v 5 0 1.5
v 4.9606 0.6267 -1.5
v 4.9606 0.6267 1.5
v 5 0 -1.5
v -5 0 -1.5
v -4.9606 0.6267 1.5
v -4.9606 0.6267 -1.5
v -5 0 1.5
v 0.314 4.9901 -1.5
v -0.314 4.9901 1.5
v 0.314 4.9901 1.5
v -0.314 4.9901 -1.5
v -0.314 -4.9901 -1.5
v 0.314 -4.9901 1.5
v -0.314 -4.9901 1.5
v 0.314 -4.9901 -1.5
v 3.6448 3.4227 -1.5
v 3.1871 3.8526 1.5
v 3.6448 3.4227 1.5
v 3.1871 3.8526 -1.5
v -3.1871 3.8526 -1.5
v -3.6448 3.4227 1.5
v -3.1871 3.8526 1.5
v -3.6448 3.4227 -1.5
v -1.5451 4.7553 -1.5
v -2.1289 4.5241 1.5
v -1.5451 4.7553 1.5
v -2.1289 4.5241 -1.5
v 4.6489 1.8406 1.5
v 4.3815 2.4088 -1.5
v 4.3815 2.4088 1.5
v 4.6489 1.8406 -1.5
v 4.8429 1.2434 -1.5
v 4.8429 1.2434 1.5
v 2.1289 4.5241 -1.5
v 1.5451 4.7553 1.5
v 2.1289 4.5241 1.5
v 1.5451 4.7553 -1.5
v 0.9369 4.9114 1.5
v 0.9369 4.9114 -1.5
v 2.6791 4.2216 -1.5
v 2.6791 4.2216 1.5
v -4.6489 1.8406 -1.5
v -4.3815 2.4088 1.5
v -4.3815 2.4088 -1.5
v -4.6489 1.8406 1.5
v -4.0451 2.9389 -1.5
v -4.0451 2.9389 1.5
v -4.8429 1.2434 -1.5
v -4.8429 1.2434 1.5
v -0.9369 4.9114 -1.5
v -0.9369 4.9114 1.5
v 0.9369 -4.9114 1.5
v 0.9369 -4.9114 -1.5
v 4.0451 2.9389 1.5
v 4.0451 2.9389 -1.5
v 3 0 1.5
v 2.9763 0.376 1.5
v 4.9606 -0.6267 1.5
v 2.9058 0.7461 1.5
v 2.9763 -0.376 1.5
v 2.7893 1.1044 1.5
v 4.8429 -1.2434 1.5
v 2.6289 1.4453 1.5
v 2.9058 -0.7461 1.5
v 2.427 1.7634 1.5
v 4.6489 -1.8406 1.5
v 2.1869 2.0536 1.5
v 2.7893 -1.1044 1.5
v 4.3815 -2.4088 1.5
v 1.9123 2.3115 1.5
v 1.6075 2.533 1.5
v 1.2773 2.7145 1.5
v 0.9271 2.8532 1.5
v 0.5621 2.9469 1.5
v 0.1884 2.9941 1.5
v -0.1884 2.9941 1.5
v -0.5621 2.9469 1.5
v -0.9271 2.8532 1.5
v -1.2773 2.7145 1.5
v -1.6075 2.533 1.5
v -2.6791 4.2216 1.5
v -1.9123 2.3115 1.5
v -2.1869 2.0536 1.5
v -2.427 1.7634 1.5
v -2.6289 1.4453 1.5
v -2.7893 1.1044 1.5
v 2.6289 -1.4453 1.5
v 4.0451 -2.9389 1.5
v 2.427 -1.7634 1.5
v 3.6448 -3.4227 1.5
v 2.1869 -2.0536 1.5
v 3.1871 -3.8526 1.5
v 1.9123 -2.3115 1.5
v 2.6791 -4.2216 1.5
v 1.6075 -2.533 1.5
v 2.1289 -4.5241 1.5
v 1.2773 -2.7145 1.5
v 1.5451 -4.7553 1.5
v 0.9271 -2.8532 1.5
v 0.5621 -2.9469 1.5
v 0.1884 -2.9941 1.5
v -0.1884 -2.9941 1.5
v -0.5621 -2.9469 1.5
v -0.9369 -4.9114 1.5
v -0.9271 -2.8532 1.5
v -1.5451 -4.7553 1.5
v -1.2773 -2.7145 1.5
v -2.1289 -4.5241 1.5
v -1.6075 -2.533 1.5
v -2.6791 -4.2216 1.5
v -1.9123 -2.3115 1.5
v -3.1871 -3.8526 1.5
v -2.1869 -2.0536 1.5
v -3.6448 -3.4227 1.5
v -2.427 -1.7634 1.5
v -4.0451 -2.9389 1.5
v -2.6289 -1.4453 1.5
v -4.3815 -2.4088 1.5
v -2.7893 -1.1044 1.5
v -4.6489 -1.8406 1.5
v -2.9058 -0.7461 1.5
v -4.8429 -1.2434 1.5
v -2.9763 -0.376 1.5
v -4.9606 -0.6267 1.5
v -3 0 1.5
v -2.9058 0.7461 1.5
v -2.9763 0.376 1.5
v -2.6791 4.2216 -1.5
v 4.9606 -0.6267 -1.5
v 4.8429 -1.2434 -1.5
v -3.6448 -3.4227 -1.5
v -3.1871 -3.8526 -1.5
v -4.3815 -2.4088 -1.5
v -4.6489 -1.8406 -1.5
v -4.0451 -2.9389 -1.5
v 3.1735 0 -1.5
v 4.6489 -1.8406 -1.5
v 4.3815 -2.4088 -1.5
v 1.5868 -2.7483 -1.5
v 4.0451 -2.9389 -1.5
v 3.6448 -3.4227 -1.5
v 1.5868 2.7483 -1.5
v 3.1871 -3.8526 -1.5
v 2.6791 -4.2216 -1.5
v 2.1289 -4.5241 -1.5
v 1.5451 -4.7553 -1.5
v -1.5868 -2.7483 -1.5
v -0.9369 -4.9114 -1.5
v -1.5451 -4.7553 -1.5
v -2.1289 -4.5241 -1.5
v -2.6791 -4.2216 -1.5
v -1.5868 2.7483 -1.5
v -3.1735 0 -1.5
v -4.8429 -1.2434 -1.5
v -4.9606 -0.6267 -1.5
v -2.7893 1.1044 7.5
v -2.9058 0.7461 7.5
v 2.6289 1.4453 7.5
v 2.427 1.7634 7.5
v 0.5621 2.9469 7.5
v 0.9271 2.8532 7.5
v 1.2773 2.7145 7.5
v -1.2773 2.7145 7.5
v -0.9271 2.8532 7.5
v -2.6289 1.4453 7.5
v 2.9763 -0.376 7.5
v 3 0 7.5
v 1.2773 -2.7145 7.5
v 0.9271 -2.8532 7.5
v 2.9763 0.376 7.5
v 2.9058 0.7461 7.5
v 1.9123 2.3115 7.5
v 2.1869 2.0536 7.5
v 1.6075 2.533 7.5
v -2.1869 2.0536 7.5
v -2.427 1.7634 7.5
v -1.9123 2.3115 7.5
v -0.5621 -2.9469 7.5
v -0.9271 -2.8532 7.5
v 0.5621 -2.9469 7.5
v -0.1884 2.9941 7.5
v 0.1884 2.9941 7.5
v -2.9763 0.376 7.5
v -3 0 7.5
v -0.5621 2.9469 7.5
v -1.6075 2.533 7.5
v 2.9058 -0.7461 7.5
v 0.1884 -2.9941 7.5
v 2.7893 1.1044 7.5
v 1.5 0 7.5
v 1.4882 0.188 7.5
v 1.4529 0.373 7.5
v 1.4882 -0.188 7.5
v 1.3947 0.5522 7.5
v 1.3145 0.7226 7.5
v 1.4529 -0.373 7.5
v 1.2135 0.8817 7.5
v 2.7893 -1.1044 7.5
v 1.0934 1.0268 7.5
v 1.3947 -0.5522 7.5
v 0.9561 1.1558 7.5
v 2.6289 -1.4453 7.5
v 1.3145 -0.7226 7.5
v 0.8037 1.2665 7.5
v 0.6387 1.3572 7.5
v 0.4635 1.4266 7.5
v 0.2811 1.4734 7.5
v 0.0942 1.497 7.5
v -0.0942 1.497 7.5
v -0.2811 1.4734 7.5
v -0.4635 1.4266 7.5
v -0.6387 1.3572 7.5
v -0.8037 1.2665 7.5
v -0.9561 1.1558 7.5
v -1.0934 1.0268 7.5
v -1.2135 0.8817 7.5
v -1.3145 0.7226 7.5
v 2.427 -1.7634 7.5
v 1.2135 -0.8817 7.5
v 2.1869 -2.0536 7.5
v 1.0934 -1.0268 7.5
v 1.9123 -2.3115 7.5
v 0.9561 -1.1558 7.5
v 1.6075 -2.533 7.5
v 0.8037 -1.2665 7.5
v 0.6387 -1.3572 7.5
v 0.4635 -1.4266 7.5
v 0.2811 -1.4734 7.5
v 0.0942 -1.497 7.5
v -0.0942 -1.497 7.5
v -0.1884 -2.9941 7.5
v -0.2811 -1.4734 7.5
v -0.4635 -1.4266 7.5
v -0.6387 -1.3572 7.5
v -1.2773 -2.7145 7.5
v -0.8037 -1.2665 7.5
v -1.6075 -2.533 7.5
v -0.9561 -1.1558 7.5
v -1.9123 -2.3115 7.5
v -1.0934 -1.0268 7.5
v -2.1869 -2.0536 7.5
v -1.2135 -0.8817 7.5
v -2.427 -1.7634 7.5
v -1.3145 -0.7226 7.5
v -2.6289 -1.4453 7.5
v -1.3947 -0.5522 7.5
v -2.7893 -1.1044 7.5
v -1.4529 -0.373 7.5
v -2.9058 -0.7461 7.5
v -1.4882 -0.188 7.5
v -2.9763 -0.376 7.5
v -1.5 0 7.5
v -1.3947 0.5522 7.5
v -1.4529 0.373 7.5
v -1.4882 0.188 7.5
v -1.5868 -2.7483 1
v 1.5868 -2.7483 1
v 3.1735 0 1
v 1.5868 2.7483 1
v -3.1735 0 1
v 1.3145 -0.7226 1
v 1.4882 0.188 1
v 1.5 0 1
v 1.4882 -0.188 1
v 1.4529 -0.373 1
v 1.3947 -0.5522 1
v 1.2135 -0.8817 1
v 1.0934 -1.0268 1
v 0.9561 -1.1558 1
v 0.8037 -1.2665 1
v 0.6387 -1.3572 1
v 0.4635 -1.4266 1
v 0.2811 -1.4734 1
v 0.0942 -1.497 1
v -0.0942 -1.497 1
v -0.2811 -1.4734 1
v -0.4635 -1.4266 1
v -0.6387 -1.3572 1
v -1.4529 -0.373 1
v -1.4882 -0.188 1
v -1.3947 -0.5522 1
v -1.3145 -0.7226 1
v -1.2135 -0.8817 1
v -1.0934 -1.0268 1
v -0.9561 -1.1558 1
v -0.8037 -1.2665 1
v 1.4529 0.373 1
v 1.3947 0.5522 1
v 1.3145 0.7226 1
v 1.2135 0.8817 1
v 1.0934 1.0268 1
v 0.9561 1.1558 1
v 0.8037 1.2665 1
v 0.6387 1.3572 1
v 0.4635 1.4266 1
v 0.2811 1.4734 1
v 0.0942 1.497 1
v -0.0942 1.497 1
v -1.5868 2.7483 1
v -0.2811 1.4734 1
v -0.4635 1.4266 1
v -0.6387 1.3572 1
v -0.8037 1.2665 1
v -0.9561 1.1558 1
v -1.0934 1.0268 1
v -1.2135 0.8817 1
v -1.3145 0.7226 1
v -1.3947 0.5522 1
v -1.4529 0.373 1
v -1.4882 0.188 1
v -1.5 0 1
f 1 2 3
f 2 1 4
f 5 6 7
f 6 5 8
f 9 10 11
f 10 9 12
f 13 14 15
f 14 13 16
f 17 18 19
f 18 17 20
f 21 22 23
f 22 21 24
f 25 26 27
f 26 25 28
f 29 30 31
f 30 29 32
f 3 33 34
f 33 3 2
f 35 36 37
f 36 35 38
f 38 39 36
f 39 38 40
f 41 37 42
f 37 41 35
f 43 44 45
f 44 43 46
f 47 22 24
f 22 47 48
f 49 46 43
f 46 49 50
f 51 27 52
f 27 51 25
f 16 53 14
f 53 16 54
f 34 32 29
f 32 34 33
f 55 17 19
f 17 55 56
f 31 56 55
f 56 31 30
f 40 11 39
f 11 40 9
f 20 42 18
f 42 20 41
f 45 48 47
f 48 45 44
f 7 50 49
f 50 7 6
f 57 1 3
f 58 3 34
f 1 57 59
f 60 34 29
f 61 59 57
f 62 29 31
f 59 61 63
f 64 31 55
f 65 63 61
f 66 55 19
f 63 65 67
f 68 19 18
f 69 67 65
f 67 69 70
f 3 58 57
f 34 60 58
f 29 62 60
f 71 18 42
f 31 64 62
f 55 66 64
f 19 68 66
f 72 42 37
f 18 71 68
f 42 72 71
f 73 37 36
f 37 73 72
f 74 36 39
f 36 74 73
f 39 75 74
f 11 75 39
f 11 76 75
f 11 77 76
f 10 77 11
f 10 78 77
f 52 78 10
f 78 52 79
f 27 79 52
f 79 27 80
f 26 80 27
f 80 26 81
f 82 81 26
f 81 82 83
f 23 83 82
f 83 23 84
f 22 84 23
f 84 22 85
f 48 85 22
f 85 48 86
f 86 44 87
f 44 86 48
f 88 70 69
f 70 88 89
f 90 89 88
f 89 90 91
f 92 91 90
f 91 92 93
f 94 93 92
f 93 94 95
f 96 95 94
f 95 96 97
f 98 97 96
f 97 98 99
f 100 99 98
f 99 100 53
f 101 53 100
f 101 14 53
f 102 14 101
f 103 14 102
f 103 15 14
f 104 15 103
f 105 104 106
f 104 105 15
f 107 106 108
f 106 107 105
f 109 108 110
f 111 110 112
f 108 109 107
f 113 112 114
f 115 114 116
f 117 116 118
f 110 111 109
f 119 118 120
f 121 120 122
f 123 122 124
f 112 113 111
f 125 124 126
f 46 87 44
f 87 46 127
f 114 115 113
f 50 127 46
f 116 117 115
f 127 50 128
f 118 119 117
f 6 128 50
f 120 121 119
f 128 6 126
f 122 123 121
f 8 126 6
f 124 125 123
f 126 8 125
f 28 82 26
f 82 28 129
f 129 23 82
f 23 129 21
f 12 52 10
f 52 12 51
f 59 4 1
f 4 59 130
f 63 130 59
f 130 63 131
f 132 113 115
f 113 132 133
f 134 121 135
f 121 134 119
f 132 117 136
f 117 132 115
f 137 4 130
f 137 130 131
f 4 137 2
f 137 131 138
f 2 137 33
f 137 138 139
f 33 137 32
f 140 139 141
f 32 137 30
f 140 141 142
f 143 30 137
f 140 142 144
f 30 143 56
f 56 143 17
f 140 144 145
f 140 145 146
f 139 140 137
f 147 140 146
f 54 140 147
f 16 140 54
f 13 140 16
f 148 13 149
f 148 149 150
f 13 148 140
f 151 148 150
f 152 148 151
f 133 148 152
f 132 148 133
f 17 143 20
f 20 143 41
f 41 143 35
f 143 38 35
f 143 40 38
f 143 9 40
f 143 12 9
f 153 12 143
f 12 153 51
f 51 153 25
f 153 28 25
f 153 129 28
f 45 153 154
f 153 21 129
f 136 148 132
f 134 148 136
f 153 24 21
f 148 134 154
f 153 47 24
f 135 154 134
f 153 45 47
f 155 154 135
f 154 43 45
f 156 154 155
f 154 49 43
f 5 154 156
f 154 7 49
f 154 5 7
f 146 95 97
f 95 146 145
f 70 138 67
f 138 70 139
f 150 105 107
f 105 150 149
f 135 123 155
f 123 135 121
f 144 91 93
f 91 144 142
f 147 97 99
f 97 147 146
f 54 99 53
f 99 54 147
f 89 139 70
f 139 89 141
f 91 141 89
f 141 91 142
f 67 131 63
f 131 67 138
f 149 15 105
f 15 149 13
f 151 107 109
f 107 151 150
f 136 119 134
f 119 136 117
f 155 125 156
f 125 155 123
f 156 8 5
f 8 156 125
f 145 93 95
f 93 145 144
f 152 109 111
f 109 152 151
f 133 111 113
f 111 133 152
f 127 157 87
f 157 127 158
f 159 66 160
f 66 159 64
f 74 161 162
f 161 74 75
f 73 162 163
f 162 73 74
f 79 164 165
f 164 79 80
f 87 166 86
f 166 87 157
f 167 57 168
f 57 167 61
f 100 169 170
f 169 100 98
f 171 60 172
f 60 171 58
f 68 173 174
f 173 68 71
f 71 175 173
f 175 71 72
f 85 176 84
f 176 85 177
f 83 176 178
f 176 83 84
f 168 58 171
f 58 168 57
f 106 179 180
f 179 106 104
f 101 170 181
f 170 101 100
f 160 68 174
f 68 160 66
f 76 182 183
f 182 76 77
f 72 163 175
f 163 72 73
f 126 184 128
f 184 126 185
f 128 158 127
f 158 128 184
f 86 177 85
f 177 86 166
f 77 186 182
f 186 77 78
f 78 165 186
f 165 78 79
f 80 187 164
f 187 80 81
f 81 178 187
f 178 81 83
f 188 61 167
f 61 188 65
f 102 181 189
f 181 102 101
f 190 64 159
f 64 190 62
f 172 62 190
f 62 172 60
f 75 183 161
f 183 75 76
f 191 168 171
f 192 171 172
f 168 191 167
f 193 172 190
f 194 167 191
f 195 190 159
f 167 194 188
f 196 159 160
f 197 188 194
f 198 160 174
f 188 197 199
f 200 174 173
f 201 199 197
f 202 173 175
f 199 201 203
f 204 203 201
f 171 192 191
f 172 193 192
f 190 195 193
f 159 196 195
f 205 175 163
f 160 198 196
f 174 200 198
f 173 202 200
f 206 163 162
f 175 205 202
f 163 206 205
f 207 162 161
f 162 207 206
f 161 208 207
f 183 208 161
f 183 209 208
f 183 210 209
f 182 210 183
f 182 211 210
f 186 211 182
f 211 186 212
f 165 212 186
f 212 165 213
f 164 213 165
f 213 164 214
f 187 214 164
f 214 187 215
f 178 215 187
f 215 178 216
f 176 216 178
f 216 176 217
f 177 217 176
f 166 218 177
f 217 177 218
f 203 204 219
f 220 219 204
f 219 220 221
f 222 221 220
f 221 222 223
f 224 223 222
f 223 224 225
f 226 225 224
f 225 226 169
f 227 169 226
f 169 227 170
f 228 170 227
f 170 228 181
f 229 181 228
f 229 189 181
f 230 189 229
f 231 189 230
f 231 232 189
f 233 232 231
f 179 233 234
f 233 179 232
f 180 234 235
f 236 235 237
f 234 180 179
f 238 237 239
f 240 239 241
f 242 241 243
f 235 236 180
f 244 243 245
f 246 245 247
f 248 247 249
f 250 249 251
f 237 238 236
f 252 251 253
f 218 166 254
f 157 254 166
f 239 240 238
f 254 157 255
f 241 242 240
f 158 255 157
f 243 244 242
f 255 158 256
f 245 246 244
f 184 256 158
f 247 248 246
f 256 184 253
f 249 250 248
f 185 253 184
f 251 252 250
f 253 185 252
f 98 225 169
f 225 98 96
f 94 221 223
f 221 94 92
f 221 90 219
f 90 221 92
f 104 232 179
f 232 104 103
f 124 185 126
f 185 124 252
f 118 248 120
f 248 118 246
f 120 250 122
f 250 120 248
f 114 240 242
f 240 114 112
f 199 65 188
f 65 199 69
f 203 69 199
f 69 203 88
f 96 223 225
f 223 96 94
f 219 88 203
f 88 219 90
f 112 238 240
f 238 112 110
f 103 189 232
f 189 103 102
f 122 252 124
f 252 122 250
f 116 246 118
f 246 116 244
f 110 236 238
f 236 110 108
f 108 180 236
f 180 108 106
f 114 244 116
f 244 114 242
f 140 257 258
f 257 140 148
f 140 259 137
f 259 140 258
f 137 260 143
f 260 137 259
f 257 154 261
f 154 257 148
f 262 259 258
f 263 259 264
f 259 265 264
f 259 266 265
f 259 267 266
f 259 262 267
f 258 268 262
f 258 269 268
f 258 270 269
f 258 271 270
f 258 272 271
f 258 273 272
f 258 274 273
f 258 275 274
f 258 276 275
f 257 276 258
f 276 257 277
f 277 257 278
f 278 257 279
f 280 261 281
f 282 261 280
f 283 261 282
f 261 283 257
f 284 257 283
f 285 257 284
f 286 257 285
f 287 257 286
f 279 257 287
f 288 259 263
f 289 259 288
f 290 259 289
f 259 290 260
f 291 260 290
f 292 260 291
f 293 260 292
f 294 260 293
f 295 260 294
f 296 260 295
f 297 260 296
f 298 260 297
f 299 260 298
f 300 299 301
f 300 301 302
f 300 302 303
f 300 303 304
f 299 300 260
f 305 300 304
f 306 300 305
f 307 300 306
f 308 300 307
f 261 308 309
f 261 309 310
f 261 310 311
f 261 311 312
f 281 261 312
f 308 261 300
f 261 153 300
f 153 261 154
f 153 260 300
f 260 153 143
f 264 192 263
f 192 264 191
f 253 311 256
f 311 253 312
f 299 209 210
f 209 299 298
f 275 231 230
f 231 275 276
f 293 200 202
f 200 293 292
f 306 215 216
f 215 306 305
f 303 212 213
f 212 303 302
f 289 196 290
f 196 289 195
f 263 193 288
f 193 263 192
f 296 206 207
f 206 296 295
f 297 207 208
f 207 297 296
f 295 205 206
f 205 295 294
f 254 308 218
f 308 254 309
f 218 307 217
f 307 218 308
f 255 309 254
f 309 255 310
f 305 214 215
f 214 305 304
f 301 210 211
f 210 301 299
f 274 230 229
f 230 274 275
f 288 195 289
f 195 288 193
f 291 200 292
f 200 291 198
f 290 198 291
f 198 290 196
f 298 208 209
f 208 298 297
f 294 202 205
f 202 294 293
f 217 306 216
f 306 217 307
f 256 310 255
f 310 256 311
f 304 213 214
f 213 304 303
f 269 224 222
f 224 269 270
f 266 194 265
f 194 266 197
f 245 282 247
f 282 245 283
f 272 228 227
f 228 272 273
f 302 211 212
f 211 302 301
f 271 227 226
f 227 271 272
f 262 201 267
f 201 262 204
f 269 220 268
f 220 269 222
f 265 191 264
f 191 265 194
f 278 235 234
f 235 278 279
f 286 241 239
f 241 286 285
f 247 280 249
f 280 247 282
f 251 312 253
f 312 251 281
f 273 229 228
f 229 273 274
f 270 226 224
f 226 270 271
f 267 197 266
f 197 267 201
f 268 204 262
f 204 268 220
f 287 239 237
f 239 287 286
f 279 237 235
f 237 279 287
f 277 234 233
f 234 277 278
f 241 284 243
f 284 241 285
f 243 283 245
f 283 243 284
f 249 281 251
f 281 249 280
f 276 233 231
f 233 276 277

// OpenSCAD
$fn = 50;


difference() {
	union() {
		translate(v = [0, 0, -1.5000000000]) {
			cylinder(h = 3, r = 5.0000000000);
		}
		translate(v = [0, 0, -1.5000000000]) {
			cylinder(h = 9, r = 3.0000000000);
		}
	}
	union() {
		translate(v = [0, 0, -1.5000000000]) {
			rotate(a = [0, 0, 0]) {
				difference() {
					union() {
						linear_extrude(height = 2.5000000000) {
							polygon(points = [[3.1735000000, 0.0000000000], [1.5867500000, 2.7483316189], [-1.5867500000, 2.7483316189], [-3.1735000000, 0.0000000000], [-1.5867500000, -2.7483316189], [1.5867500000, -2.7483316189]]);
						}
					}
					union();
				}
			}
		}
		translate(v = [0, 0, -100.0000000000]) {
			cylinder(h = 200, r = 1.5000000000);
		}
	}
}
